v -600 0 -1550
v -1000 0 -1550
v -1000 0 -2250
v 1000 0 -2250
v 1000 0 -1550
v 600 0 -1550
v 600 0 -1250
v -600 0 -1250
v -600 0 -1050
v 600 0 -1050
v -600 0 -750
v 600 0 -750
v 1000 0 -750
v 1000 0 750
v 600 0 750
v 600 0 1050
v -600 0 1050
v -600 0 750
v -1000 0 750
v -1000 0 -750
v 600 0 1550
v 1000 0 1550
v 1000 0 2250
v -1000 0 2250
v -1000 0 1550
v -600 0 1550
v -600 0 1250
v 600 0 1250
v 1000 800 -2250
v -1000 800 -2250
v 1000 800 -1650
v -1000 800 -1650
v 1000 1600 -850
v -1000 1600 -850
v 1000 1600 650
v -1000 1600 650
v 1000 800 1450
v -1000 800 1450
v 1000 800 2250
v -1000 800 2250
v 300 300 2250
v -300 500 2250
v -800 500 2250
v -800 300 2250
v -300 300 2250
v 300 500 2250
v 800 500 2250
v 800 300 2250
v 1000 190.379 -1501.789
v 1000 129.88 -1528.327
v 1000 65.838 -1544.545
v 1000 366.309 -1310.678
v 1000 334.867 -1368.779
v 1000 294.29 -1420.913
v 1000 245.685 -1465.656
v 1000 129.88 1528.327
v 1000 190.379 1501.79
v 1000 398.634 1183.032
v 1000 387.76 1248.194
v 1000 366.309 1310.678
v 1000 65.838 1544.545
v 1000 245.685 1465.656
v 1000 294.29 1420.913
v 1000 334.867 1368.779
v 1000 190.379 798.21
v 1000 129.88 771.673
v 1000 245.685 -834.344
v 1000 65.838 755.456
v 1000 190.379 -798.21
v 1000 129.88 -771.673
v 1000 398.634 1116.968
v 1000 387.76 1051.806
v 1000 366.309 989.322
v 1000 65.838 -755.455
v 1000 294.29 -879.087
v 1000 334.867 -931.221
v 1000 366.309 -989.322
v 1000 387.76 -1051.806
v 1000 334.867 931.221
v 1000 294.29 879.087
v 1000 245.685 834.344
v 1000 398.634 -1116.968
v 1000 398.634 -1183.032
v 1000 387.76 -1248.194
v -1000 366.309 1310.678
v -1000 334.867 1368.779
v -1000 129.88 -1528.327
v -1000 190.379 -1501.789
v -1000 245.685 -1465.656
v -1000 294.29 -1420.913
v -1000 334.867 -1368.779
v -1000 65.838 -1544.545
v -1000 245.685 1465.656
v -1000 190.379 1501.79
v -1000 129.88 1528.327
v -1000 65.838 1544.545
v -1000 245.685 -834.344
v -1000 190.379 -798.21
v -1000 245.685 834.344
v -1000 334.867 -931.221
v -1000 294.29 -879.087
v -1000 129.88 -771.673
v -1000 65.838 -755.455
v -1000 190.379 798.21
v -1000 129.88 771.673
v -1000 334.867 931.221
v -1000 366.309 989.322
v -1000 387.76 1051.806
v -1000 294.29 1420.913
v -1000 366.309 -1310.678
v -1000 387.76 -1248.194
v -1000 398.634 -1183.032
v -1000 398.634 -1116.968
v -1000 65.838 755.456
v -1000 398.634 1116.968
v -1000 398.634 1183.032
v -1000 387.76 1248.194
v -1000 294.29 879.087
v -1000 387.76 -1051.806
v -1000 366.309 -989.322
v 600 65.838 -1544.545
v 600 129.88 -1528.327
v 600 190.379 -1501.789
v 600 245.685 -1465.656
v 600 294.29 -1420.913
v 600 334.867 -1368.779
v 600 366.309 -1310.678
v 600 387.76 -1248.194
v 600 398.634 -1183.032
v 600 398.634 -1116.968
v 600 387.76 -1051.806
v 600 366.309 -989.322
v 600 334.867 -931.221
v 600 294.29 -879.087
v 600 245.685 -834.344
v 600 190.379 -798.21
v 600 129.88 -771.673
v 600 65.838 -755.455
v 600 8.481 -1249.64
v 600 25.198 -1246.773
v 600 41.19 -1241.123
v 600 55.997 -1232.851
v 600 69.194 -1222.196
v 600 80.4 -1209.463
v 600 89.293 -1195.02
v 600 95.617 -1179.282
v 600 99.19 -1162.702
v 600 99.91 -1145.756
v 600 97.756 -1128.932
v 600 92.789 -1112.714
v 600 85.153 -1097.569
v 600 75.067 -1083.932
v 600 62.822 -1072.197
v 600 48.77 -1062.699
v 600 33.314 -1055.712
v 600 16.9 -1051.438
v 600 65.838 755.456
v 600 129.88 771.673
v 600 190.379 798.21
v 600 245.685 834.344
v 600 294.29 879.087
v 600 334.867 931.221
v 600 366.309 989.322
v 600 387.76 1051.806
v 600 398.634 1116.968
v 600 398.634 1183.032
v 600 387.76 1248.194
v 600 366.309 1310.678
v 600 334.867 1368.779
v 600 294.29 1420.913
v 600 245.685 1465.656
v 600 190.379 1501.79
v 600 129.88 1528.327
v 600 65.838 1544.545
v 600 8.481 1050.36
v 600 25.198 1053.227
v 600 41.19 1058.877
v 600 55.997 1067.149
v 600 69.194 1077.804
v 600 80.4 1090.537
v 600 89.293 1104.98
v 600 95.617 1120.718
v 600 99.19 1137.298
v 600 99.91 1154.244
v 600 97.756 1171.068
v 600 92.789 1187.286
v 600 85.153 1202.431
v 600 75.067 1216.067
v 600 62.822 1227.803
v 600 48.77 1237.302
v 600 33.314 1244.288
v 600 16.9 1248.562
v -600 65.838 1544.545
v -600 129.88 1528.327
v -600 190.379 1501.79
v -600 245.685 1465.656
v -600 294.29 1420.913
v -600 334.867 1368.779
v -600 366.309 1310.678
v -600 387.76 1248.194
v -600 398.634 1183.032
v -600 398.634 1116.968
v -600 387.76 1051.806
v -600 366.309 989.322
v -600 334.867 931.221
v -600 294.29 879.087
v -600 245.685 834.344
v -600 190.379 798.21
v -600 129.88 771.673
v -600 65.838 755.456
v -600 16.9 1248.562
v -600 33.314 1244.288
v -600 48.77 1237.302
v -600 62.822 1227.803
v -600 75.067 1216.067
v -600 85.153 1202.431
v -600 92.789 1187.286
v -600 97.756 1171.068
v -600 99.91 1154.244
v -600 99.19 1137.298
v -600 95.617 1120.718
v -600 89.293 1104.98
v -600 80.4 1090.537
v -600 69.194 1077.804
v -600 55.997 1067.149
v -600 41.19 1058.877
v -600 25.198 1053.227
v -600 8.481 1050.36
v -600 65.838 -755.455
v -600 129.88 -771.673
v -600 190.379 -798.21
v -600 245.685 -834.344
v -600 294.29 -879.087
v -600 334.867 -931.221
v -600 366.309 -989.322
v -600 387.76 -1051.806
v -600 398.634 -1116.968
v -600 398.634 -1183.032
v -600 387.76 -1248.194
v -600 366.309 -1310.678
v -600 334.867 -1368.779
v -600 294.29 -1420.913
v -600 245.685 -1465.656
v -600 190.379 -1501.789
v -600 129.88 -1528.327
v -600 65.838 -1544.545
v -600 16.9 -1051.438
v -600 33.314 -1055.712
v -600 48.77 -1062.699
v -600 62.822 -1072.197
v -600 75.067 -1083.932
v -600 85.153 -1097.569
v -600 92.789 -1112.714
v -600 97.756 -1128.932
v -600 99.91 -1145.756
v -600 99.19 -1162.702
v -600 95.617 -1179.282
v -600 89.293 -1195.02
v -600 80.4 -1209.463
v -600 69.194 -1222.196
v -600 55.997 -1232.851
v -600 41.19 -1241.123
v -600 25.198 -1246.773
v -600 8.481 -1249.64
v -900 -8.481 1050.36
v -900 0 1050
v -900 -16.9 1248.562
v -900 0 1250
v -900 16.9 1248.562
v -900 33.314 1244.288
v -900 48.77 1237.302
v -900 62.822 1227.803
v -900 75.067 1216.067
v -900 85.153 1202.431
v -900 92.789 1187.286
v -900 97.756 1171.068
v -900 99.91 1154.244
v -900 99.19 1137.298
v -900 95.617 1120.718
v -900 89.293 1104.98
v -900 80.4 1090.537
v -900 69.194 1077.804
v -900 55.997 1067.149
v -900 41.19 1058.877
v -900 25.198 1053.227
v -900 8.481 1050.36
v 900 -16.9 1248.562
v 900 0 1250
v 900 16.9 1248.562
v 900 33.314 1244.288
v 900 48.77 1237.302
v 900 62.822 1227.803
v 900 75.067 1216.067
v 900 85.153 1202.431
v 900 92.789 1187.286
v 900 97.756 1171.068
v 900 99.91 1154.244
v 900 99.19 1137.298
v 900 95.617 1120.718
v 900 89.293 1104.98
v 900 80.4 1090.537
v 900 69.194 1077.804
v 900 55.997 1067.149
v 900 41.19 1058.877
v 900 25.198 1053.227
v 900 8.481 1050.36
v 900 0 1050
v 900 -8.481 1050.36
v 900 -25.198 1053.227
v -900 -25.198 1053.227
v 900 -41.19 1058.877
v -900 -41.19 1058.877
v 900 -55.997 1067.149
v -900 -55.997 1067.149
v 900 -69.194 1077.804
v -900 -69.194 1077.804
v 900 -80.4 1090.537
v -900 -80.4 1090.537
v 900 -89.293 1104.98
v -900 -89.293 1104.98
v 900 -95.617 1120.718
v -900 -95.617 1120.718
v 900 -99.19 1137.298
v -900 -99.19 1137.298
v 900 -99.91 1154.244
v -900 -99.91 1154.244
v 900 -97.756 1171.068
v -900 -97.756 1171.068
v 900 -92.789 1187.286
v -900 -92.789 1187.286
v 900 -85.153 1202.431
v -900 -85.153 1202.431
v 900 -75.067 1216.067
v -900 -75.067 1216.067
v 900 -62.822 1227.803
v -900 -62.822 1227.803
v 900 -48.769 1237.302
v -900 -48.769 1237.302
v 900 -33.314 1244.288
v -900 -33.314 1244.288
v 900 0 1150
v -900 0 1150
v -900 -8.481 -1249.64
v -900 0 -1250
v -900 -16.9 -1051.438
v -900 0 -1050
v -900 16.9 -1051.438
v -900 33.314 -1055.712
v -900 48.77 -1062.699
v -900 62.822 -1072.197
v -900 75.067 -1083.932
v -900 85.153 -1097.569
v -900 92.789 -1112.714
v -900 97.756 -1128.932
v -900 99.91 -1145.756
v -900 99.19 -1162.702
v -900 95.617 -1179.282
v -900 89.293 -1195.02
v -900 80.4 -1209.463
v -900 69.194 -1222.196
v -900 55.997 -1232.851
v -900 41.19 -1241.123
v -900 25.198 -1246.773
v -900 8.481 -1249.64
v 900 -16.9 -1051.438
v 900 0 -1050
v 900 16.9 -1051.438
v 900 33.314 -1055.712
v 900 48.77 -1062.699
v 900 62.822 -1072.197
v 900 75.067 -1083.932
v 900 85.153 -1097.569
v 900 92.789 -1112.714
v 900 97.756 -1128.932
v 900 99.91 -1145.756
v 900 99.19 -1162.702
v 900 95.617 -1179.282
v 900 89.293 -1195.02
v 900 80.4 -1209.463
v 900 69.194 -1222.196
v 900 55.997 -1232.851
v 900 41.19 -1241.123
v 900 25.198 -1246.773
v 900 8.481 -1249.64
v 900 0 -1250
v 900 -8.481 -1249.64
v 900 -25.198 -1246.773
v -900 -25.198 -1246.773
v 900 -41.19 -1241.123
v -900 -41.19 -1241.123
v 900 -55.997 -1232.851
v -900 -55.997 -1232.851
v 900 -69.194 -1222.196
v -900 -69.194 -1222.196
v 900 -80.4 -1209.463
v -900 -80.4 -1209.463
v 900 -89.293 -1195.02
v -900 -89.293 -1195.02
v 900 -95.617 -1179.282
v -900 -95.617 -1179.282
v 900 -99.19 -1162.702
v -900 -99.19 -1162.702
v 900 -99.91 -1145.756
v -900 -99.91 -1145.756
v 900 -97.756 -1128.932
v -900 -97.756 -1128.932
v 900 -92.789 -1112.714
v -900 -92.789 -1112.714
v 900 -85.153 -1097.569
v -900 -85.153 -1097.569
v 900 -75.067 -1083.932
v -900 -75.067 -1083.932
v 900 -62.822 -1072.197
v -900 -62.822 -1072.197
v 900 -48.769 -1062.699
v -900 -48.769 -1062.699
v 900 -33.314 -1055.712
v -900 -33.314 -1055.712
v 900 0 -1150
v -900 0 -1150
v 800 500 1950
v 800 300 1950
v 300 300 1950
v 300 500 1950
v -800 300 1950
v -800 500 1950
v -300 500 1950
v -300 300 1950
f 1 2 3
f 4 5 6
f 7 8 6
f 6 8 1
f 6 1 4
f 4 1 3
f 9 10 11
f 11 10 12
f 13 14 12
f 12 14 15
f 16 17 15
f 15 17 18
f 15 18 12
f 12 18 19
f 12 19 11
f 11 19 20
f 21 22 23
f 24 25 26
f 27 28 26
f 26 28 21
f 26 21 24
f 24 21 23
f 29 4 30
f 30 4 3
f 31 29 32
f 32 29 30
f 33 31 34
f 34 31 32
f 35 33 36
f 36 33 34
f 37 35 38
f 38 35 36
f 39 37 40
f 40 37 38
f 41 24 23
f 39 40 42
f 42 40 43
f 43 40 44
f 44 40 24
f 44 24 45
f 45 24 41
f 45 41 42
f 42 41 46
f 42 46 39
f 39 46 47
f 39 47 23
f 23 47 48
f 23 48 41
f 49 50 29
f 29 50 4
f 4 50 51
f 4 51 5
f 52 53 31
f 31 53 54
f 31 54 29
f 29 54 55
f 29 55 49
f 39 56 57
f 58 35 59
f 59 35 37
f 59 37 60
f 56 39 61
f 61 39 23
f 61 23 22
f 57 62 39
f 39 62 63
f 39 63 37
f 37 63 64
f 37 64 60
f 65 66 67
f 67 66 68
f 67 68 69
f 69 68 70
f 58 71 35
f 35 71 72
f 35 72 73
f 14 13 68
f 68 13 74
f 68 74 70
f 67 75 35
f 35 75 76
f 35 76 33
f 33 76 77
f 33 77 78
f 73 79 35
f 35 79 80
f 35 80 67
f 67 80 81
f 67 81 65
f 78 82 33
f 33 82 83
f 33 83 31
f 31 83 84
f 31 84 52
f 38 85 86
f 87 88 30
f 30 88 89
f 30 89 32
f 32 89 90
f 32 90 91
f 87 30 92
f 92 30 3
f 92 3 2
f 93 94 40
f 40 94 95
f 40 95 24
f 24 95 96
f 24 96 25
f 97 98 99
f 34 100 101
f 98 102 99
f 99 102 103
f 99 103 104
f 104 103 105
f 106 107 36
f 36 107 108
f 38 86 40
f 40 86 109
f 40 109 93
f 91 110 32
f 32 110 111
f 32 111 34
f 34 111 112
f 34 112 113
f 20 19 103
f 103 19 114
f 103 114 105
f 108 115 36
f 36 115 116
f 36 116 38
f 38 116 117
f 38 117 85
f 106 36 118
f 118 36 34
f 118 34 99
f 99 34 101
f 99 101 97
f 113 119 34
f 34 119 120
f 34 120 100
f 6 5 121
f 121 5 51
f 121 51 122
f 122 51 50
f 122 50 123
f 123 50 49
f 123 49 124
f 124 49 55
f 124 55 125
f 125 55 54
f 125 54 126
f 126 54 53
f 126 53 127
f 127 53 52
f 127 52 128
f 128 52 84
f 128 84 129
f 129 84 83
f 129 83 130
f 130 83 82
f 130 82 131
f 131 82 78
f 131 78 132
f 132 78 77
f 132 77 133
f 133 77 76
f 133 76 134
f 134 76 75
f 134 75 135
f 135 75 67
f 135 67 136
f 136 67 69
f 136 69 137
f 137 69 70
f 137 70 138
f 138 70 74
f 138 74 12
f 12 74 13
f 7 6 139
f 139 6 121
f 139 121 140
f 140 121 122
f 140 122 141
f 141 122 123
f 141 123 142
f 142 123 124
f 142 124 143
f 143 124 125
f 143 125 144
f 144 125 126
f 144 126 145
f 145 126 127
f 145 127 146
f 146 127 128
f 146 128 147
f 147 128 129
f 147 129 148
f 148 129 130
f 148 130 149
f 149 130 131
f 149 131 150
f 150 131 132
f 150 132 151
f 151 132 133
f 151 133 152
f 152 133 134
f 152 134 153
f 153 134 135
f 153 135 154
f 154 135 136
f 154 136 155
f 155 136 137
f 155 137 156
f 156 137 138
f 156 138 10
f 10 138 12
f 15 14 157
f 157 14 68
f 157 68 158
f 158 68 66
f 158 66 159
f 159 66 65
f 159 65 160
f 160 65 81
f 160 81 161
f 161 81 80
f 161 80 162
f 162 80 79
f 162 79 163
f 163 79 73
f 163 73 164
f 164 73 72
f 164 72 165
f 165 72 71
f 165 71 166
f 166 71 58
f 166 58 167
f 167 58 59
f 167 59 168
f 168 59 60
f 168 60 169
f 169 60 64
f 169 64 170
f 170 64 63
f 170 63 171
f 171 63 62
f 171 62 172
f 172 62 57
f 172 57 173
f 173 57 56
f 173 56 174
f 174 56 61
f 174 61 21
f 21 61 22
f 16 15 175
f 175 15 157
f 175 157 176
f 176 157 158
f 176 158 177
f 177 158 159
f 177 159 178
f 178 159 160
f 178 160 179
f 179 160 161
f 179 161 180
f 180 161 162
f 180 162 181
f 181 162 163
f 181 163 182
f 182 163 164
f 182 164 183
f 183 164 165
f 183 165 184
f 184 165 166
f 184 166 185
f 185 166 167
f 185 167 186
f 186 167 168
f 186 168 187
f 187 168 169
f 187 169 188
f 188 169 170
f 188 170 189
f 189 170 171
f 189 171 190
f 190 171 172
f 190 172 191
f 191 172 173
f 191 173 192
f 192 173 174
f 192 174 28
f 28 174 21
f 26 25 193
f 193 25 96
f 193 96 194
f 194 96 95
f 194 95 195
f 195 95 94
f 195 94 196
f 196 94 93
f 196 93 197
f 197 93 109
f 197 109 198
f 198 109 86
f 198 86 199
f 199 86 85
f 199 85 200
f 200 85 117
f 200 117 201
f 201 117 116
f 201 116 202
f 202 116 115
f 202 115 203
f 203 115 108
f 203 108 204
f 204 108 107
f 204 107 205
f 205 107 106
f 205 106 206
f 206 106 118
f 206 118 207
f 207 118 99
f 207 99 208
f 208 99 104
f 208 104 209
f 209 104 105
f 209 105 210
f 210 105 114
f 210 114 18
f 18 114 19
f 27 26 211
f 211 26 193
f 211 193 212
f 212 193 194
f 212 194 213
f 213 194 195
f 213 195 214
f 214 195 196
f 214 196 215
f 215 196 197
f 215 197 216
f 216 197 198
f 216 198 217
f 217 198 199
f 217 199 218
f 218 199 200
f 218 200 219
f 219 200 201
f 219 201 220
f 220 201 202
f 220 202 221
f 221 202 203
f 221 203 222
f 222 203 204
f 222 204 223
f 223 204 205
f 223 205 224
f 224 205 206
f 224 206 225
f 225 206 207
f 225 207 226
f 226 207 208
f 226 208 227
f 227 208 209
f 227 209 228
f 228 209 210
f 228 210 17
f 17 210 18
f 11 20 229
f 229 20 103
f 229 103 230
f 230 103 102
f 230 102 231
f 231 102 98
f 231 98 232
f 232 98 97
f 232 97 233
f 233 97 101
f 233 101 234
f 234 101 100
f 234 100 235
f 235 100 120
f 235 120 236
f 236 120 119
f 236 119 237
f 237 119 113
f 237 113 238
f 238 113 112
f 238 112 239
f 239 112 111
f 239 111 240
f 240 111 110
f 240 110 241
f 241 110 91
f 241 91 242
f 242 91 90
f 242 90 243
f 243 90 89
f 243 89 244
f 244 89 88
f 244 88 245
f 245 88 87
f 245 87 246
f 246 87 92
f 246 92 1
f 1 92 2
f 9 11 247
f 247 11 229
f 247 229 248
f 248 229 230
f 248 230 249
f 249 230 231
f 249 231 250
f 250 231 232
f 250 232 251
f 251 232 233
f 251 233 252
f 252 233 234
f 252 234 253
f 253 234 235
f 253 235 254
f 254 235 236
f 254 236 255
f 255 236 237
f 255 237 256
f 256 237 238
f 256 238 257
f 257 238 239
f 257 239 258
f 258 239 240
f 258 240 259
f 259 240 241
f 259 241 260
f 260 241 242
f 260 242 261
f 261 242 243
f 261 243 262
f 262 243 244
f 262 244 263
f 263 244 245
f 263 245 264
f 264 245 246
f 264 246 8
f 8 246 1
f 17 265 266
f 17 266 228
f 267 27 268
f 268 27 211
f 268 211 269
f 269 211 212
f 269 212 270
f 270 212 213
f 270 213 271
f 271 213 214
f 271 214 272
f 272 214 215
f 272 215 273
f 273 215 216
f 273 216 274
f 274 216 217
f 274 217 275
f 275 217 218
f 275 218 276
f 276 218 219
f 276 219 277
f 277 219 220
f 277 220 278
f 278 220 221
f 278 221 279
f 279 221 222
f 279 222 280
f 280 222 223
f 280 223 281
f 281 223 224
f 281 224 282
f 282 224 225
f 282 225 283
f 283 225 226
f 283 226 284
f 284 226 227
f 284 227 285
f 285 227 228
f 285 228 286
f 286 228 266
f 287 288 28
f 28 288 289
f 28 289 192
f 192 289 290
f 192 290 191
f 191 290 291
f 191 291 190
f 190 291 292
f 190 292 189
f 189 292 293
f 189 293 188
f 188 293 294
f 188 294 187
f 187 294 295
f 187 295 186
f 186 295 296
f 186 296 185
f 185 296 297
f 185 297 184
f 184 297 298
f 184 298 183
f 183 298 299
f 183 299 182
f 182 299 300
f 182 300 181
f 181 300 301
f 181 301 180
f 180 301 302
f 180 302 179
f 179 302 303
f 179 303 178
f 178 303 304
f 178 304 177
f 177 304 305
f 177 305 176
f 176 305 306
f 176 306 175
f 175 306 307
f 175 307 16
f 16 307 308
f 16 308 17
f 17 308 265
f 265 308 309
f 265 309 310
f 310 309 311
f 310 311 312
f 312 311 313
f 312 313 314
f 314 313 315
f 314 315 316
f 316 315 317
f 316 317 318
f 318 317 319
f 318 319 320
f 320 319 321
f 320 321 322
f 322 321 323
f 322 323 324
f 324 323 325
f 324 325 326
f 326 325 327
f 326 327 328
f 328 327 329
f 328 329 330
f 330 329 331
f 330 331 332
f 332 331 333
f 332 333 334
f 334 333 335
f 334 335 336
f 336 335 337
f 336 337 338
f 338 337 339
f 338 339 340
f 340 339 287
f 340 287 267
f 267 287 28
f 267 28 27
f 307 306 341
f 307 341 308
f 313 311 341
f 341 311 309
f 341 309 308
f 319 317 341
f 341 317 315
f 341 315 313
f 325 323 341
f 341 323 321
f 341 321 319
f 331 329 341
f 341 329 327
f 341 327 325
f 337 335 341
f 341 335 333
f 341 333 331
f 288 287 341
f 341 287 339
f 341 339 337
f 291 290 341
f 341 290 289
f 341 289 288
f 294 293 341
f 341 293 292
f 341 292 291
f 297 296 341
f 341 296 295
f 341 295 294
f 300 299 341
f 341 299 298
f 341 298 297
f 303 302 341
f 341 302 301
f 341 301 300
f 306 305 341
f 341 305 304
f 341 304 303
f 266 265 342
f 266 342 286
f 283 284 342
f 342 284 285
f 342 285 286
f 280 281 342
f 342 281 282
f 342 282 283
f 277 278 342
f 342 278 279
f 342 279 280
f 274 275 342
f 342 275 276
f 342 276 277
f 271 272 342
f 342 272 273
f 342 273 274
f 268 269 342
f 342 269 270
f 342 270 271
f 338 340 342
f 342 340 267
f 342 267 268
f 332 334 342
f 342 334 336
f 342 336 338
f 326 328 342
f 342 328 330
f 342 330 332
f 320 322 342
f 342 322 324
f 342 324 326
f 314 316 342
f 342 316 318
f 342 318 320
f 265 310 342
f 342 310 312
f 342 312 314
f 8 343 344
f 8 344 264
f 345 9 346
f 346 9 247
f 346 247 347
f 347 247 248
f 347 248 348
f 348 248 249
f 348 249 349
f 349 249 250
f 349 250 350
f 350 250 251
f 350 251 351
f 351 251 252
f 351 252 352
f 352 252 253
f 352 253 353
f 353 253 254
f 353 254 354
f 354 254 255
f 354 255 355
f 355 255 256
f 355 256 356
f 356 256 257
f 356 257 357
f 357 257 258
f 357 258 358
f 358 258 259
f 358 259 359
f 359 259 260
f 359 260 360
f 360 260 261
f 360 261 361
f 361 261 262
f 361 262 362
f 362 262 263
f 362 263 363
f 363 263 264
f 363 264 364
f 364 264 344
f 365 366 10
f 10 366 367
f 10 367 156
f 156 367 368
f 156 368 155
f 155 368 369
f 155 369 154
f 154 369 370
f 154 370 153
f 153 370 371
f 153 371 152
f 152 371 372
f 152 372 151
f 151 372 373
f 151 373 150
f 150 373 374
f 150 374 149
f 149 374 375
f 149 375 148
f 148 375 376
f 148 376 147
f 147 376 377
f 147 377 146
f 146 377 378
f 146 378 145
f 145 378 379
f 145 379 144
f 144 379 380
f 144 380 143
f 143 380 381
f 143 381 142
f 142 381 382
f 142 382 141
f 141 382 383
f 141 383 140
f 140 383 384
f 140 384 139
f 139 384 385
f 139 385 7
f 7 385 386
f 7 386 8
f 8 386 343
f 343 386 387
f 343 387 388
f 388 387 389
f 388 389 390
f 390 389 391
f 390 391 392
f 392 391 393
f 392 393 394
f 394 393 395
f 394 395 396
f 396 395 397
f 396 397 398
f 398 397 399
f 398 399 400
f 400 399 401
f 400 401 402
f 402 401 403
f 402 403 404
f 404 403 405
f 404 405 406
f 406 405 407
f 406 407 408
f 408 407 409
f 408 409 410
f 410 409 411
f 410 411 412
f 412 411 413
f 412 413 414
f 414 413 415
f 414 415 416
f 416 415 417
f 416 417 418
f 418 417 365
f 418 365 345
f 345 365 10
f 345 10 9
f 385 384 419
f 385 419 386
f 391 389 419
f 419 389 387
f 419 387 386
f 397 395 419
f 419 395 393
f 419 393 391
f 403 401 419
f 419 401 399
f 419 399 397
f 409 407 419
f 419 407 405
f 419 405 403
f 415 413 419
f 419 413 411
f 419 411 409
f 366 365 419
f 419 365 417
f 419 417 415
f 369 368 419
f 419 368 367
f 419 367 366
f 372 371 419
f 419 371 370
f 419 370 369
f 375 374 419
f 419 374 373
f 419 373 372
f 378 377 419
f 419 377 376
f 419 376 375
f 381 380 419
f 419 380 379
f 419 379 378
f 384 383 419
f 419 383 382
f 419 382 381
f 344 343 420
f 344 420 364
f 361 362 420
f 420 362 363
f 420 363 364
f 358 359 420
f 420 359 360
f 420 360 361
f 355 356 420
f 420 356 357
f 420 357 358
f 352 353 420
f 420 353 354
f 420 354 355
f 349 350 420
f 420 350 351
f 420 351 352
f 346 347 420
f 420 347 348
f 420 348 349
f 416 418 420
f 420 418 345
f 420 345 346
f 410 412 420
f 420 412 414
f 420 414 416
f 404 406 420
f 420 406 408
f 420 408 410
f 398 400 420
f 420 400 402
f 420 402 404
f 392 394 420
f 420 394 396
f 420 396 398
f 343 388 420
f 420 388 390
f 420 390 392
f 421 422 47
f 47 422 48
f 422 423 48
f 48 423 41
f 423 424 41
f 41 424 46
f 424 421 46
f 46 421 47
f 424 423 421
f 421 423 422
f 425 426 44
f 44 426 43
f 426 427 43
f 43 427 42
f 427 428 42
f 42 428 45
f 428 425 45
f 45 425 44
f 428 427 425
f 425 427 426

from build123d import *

# Parameters (mm, degrees)
BOSS_EXTRUDE1_DEPTH = 1000
CUT_EXTRUDE3_DEPTH  = 400
CUT_EXTRUDE4_START  = -400
CUT_EXTRUDE4_DEPTH  = 400
SKETCH7_R           = 100
BOSS_EXTRUDE2_DEPTH = 900
SKETCH8_W           = 500
SKETCH8_H           = 200
CUT_EXTRUDE5_DEPTH  = 300


with BuildPart() as part:
    # Car_Profile → Boss-Extrude1 (new, symmetric)
    with BuildSketch(Plane(origin=(0, 0, 0), x_dir=(0, 0, -1), z_dir=(1, 0, 0))):
        Polygon((2250, 0), (2250, 800), (1650, 800), (850, 1600), (-650, 1600), (-1450, 800), (-2250, 800), (-2250, 0), align=None)
    extrude(amount=BOSS_EXTRUDE1_DEPTH, both=True)

    # Sketch4 → Cut-Extrude3 (cut)
    with BuildSketch(Plane(origin=(1000, 0, 0), x_dir=(0, 0, -1), z_dir=(1, 0, 0))):
        with BuildLine():
            Line((-750, 0), (-1550, 0))
            ThreePointArc((-1550, 0), (-1150, 400), (-750, 0))
        make_face()
        with BuildLine():
            Line((750, 0), (1550, 0))
            ThreePointArc((1550, 0), (1150, 400), (750, 0))
        make_face()
    extrude(amount=-CUT_EXTRUDE3_DEPTH, mode=Mode.SUBTRACT)

    # Sketch6 → Cut-Extrude4 (cut)
    with BuildSketch(Plane.ZY.offset(1000).offset(CUT_EXTRUDE4_START)):
        with BuildLine():
            Line((-750, 0), (-1550, 0))
            ThreePointArc((-1550, 0), (-1150, 400), (-750, 0))
        make_face()
        with BuildLine():
            Line((750, 0), (1550, 0))
            ThreePointArc((1550, 0), (1150, 400), (750, 0))
        make_face()
    extrude(amount=CUT_EXTRUDE4_DEPTH, mode=Mode.SUBTRACT)

    # Sketch7 → Boss-Extrude2 (add, symmetric)
    with BuildSketch(Plane(origin=(0, 0, 0), x_dir=(0, 0, -1), z_dir=(1, 0, 0))):
        with Locations((-1150, 0)):
            Circle(SKETCH7_R)
        with Locations((1150, 0)):
            Circle(SKETCH7_R)
    extrude(amount=BOSS_EXTRUDE2_DEPTH, both=True)

    # Sketch8 → Cut-Extrude5 (cut)
    with BuildSketch(Plane.XY.offset(2250)):
        with Locations((-550, 400)):
            Rectangle(SKETCH8_W, SKETCH8_H)
        with Locations((550, 400)):
            Rectangle(SKETCH8_W, SKETCH8_H)
    extrude(amount=-CUT_EXTRUDE5_DEPTH, mode=Mode.SUBTRACT)


solid = part.part
